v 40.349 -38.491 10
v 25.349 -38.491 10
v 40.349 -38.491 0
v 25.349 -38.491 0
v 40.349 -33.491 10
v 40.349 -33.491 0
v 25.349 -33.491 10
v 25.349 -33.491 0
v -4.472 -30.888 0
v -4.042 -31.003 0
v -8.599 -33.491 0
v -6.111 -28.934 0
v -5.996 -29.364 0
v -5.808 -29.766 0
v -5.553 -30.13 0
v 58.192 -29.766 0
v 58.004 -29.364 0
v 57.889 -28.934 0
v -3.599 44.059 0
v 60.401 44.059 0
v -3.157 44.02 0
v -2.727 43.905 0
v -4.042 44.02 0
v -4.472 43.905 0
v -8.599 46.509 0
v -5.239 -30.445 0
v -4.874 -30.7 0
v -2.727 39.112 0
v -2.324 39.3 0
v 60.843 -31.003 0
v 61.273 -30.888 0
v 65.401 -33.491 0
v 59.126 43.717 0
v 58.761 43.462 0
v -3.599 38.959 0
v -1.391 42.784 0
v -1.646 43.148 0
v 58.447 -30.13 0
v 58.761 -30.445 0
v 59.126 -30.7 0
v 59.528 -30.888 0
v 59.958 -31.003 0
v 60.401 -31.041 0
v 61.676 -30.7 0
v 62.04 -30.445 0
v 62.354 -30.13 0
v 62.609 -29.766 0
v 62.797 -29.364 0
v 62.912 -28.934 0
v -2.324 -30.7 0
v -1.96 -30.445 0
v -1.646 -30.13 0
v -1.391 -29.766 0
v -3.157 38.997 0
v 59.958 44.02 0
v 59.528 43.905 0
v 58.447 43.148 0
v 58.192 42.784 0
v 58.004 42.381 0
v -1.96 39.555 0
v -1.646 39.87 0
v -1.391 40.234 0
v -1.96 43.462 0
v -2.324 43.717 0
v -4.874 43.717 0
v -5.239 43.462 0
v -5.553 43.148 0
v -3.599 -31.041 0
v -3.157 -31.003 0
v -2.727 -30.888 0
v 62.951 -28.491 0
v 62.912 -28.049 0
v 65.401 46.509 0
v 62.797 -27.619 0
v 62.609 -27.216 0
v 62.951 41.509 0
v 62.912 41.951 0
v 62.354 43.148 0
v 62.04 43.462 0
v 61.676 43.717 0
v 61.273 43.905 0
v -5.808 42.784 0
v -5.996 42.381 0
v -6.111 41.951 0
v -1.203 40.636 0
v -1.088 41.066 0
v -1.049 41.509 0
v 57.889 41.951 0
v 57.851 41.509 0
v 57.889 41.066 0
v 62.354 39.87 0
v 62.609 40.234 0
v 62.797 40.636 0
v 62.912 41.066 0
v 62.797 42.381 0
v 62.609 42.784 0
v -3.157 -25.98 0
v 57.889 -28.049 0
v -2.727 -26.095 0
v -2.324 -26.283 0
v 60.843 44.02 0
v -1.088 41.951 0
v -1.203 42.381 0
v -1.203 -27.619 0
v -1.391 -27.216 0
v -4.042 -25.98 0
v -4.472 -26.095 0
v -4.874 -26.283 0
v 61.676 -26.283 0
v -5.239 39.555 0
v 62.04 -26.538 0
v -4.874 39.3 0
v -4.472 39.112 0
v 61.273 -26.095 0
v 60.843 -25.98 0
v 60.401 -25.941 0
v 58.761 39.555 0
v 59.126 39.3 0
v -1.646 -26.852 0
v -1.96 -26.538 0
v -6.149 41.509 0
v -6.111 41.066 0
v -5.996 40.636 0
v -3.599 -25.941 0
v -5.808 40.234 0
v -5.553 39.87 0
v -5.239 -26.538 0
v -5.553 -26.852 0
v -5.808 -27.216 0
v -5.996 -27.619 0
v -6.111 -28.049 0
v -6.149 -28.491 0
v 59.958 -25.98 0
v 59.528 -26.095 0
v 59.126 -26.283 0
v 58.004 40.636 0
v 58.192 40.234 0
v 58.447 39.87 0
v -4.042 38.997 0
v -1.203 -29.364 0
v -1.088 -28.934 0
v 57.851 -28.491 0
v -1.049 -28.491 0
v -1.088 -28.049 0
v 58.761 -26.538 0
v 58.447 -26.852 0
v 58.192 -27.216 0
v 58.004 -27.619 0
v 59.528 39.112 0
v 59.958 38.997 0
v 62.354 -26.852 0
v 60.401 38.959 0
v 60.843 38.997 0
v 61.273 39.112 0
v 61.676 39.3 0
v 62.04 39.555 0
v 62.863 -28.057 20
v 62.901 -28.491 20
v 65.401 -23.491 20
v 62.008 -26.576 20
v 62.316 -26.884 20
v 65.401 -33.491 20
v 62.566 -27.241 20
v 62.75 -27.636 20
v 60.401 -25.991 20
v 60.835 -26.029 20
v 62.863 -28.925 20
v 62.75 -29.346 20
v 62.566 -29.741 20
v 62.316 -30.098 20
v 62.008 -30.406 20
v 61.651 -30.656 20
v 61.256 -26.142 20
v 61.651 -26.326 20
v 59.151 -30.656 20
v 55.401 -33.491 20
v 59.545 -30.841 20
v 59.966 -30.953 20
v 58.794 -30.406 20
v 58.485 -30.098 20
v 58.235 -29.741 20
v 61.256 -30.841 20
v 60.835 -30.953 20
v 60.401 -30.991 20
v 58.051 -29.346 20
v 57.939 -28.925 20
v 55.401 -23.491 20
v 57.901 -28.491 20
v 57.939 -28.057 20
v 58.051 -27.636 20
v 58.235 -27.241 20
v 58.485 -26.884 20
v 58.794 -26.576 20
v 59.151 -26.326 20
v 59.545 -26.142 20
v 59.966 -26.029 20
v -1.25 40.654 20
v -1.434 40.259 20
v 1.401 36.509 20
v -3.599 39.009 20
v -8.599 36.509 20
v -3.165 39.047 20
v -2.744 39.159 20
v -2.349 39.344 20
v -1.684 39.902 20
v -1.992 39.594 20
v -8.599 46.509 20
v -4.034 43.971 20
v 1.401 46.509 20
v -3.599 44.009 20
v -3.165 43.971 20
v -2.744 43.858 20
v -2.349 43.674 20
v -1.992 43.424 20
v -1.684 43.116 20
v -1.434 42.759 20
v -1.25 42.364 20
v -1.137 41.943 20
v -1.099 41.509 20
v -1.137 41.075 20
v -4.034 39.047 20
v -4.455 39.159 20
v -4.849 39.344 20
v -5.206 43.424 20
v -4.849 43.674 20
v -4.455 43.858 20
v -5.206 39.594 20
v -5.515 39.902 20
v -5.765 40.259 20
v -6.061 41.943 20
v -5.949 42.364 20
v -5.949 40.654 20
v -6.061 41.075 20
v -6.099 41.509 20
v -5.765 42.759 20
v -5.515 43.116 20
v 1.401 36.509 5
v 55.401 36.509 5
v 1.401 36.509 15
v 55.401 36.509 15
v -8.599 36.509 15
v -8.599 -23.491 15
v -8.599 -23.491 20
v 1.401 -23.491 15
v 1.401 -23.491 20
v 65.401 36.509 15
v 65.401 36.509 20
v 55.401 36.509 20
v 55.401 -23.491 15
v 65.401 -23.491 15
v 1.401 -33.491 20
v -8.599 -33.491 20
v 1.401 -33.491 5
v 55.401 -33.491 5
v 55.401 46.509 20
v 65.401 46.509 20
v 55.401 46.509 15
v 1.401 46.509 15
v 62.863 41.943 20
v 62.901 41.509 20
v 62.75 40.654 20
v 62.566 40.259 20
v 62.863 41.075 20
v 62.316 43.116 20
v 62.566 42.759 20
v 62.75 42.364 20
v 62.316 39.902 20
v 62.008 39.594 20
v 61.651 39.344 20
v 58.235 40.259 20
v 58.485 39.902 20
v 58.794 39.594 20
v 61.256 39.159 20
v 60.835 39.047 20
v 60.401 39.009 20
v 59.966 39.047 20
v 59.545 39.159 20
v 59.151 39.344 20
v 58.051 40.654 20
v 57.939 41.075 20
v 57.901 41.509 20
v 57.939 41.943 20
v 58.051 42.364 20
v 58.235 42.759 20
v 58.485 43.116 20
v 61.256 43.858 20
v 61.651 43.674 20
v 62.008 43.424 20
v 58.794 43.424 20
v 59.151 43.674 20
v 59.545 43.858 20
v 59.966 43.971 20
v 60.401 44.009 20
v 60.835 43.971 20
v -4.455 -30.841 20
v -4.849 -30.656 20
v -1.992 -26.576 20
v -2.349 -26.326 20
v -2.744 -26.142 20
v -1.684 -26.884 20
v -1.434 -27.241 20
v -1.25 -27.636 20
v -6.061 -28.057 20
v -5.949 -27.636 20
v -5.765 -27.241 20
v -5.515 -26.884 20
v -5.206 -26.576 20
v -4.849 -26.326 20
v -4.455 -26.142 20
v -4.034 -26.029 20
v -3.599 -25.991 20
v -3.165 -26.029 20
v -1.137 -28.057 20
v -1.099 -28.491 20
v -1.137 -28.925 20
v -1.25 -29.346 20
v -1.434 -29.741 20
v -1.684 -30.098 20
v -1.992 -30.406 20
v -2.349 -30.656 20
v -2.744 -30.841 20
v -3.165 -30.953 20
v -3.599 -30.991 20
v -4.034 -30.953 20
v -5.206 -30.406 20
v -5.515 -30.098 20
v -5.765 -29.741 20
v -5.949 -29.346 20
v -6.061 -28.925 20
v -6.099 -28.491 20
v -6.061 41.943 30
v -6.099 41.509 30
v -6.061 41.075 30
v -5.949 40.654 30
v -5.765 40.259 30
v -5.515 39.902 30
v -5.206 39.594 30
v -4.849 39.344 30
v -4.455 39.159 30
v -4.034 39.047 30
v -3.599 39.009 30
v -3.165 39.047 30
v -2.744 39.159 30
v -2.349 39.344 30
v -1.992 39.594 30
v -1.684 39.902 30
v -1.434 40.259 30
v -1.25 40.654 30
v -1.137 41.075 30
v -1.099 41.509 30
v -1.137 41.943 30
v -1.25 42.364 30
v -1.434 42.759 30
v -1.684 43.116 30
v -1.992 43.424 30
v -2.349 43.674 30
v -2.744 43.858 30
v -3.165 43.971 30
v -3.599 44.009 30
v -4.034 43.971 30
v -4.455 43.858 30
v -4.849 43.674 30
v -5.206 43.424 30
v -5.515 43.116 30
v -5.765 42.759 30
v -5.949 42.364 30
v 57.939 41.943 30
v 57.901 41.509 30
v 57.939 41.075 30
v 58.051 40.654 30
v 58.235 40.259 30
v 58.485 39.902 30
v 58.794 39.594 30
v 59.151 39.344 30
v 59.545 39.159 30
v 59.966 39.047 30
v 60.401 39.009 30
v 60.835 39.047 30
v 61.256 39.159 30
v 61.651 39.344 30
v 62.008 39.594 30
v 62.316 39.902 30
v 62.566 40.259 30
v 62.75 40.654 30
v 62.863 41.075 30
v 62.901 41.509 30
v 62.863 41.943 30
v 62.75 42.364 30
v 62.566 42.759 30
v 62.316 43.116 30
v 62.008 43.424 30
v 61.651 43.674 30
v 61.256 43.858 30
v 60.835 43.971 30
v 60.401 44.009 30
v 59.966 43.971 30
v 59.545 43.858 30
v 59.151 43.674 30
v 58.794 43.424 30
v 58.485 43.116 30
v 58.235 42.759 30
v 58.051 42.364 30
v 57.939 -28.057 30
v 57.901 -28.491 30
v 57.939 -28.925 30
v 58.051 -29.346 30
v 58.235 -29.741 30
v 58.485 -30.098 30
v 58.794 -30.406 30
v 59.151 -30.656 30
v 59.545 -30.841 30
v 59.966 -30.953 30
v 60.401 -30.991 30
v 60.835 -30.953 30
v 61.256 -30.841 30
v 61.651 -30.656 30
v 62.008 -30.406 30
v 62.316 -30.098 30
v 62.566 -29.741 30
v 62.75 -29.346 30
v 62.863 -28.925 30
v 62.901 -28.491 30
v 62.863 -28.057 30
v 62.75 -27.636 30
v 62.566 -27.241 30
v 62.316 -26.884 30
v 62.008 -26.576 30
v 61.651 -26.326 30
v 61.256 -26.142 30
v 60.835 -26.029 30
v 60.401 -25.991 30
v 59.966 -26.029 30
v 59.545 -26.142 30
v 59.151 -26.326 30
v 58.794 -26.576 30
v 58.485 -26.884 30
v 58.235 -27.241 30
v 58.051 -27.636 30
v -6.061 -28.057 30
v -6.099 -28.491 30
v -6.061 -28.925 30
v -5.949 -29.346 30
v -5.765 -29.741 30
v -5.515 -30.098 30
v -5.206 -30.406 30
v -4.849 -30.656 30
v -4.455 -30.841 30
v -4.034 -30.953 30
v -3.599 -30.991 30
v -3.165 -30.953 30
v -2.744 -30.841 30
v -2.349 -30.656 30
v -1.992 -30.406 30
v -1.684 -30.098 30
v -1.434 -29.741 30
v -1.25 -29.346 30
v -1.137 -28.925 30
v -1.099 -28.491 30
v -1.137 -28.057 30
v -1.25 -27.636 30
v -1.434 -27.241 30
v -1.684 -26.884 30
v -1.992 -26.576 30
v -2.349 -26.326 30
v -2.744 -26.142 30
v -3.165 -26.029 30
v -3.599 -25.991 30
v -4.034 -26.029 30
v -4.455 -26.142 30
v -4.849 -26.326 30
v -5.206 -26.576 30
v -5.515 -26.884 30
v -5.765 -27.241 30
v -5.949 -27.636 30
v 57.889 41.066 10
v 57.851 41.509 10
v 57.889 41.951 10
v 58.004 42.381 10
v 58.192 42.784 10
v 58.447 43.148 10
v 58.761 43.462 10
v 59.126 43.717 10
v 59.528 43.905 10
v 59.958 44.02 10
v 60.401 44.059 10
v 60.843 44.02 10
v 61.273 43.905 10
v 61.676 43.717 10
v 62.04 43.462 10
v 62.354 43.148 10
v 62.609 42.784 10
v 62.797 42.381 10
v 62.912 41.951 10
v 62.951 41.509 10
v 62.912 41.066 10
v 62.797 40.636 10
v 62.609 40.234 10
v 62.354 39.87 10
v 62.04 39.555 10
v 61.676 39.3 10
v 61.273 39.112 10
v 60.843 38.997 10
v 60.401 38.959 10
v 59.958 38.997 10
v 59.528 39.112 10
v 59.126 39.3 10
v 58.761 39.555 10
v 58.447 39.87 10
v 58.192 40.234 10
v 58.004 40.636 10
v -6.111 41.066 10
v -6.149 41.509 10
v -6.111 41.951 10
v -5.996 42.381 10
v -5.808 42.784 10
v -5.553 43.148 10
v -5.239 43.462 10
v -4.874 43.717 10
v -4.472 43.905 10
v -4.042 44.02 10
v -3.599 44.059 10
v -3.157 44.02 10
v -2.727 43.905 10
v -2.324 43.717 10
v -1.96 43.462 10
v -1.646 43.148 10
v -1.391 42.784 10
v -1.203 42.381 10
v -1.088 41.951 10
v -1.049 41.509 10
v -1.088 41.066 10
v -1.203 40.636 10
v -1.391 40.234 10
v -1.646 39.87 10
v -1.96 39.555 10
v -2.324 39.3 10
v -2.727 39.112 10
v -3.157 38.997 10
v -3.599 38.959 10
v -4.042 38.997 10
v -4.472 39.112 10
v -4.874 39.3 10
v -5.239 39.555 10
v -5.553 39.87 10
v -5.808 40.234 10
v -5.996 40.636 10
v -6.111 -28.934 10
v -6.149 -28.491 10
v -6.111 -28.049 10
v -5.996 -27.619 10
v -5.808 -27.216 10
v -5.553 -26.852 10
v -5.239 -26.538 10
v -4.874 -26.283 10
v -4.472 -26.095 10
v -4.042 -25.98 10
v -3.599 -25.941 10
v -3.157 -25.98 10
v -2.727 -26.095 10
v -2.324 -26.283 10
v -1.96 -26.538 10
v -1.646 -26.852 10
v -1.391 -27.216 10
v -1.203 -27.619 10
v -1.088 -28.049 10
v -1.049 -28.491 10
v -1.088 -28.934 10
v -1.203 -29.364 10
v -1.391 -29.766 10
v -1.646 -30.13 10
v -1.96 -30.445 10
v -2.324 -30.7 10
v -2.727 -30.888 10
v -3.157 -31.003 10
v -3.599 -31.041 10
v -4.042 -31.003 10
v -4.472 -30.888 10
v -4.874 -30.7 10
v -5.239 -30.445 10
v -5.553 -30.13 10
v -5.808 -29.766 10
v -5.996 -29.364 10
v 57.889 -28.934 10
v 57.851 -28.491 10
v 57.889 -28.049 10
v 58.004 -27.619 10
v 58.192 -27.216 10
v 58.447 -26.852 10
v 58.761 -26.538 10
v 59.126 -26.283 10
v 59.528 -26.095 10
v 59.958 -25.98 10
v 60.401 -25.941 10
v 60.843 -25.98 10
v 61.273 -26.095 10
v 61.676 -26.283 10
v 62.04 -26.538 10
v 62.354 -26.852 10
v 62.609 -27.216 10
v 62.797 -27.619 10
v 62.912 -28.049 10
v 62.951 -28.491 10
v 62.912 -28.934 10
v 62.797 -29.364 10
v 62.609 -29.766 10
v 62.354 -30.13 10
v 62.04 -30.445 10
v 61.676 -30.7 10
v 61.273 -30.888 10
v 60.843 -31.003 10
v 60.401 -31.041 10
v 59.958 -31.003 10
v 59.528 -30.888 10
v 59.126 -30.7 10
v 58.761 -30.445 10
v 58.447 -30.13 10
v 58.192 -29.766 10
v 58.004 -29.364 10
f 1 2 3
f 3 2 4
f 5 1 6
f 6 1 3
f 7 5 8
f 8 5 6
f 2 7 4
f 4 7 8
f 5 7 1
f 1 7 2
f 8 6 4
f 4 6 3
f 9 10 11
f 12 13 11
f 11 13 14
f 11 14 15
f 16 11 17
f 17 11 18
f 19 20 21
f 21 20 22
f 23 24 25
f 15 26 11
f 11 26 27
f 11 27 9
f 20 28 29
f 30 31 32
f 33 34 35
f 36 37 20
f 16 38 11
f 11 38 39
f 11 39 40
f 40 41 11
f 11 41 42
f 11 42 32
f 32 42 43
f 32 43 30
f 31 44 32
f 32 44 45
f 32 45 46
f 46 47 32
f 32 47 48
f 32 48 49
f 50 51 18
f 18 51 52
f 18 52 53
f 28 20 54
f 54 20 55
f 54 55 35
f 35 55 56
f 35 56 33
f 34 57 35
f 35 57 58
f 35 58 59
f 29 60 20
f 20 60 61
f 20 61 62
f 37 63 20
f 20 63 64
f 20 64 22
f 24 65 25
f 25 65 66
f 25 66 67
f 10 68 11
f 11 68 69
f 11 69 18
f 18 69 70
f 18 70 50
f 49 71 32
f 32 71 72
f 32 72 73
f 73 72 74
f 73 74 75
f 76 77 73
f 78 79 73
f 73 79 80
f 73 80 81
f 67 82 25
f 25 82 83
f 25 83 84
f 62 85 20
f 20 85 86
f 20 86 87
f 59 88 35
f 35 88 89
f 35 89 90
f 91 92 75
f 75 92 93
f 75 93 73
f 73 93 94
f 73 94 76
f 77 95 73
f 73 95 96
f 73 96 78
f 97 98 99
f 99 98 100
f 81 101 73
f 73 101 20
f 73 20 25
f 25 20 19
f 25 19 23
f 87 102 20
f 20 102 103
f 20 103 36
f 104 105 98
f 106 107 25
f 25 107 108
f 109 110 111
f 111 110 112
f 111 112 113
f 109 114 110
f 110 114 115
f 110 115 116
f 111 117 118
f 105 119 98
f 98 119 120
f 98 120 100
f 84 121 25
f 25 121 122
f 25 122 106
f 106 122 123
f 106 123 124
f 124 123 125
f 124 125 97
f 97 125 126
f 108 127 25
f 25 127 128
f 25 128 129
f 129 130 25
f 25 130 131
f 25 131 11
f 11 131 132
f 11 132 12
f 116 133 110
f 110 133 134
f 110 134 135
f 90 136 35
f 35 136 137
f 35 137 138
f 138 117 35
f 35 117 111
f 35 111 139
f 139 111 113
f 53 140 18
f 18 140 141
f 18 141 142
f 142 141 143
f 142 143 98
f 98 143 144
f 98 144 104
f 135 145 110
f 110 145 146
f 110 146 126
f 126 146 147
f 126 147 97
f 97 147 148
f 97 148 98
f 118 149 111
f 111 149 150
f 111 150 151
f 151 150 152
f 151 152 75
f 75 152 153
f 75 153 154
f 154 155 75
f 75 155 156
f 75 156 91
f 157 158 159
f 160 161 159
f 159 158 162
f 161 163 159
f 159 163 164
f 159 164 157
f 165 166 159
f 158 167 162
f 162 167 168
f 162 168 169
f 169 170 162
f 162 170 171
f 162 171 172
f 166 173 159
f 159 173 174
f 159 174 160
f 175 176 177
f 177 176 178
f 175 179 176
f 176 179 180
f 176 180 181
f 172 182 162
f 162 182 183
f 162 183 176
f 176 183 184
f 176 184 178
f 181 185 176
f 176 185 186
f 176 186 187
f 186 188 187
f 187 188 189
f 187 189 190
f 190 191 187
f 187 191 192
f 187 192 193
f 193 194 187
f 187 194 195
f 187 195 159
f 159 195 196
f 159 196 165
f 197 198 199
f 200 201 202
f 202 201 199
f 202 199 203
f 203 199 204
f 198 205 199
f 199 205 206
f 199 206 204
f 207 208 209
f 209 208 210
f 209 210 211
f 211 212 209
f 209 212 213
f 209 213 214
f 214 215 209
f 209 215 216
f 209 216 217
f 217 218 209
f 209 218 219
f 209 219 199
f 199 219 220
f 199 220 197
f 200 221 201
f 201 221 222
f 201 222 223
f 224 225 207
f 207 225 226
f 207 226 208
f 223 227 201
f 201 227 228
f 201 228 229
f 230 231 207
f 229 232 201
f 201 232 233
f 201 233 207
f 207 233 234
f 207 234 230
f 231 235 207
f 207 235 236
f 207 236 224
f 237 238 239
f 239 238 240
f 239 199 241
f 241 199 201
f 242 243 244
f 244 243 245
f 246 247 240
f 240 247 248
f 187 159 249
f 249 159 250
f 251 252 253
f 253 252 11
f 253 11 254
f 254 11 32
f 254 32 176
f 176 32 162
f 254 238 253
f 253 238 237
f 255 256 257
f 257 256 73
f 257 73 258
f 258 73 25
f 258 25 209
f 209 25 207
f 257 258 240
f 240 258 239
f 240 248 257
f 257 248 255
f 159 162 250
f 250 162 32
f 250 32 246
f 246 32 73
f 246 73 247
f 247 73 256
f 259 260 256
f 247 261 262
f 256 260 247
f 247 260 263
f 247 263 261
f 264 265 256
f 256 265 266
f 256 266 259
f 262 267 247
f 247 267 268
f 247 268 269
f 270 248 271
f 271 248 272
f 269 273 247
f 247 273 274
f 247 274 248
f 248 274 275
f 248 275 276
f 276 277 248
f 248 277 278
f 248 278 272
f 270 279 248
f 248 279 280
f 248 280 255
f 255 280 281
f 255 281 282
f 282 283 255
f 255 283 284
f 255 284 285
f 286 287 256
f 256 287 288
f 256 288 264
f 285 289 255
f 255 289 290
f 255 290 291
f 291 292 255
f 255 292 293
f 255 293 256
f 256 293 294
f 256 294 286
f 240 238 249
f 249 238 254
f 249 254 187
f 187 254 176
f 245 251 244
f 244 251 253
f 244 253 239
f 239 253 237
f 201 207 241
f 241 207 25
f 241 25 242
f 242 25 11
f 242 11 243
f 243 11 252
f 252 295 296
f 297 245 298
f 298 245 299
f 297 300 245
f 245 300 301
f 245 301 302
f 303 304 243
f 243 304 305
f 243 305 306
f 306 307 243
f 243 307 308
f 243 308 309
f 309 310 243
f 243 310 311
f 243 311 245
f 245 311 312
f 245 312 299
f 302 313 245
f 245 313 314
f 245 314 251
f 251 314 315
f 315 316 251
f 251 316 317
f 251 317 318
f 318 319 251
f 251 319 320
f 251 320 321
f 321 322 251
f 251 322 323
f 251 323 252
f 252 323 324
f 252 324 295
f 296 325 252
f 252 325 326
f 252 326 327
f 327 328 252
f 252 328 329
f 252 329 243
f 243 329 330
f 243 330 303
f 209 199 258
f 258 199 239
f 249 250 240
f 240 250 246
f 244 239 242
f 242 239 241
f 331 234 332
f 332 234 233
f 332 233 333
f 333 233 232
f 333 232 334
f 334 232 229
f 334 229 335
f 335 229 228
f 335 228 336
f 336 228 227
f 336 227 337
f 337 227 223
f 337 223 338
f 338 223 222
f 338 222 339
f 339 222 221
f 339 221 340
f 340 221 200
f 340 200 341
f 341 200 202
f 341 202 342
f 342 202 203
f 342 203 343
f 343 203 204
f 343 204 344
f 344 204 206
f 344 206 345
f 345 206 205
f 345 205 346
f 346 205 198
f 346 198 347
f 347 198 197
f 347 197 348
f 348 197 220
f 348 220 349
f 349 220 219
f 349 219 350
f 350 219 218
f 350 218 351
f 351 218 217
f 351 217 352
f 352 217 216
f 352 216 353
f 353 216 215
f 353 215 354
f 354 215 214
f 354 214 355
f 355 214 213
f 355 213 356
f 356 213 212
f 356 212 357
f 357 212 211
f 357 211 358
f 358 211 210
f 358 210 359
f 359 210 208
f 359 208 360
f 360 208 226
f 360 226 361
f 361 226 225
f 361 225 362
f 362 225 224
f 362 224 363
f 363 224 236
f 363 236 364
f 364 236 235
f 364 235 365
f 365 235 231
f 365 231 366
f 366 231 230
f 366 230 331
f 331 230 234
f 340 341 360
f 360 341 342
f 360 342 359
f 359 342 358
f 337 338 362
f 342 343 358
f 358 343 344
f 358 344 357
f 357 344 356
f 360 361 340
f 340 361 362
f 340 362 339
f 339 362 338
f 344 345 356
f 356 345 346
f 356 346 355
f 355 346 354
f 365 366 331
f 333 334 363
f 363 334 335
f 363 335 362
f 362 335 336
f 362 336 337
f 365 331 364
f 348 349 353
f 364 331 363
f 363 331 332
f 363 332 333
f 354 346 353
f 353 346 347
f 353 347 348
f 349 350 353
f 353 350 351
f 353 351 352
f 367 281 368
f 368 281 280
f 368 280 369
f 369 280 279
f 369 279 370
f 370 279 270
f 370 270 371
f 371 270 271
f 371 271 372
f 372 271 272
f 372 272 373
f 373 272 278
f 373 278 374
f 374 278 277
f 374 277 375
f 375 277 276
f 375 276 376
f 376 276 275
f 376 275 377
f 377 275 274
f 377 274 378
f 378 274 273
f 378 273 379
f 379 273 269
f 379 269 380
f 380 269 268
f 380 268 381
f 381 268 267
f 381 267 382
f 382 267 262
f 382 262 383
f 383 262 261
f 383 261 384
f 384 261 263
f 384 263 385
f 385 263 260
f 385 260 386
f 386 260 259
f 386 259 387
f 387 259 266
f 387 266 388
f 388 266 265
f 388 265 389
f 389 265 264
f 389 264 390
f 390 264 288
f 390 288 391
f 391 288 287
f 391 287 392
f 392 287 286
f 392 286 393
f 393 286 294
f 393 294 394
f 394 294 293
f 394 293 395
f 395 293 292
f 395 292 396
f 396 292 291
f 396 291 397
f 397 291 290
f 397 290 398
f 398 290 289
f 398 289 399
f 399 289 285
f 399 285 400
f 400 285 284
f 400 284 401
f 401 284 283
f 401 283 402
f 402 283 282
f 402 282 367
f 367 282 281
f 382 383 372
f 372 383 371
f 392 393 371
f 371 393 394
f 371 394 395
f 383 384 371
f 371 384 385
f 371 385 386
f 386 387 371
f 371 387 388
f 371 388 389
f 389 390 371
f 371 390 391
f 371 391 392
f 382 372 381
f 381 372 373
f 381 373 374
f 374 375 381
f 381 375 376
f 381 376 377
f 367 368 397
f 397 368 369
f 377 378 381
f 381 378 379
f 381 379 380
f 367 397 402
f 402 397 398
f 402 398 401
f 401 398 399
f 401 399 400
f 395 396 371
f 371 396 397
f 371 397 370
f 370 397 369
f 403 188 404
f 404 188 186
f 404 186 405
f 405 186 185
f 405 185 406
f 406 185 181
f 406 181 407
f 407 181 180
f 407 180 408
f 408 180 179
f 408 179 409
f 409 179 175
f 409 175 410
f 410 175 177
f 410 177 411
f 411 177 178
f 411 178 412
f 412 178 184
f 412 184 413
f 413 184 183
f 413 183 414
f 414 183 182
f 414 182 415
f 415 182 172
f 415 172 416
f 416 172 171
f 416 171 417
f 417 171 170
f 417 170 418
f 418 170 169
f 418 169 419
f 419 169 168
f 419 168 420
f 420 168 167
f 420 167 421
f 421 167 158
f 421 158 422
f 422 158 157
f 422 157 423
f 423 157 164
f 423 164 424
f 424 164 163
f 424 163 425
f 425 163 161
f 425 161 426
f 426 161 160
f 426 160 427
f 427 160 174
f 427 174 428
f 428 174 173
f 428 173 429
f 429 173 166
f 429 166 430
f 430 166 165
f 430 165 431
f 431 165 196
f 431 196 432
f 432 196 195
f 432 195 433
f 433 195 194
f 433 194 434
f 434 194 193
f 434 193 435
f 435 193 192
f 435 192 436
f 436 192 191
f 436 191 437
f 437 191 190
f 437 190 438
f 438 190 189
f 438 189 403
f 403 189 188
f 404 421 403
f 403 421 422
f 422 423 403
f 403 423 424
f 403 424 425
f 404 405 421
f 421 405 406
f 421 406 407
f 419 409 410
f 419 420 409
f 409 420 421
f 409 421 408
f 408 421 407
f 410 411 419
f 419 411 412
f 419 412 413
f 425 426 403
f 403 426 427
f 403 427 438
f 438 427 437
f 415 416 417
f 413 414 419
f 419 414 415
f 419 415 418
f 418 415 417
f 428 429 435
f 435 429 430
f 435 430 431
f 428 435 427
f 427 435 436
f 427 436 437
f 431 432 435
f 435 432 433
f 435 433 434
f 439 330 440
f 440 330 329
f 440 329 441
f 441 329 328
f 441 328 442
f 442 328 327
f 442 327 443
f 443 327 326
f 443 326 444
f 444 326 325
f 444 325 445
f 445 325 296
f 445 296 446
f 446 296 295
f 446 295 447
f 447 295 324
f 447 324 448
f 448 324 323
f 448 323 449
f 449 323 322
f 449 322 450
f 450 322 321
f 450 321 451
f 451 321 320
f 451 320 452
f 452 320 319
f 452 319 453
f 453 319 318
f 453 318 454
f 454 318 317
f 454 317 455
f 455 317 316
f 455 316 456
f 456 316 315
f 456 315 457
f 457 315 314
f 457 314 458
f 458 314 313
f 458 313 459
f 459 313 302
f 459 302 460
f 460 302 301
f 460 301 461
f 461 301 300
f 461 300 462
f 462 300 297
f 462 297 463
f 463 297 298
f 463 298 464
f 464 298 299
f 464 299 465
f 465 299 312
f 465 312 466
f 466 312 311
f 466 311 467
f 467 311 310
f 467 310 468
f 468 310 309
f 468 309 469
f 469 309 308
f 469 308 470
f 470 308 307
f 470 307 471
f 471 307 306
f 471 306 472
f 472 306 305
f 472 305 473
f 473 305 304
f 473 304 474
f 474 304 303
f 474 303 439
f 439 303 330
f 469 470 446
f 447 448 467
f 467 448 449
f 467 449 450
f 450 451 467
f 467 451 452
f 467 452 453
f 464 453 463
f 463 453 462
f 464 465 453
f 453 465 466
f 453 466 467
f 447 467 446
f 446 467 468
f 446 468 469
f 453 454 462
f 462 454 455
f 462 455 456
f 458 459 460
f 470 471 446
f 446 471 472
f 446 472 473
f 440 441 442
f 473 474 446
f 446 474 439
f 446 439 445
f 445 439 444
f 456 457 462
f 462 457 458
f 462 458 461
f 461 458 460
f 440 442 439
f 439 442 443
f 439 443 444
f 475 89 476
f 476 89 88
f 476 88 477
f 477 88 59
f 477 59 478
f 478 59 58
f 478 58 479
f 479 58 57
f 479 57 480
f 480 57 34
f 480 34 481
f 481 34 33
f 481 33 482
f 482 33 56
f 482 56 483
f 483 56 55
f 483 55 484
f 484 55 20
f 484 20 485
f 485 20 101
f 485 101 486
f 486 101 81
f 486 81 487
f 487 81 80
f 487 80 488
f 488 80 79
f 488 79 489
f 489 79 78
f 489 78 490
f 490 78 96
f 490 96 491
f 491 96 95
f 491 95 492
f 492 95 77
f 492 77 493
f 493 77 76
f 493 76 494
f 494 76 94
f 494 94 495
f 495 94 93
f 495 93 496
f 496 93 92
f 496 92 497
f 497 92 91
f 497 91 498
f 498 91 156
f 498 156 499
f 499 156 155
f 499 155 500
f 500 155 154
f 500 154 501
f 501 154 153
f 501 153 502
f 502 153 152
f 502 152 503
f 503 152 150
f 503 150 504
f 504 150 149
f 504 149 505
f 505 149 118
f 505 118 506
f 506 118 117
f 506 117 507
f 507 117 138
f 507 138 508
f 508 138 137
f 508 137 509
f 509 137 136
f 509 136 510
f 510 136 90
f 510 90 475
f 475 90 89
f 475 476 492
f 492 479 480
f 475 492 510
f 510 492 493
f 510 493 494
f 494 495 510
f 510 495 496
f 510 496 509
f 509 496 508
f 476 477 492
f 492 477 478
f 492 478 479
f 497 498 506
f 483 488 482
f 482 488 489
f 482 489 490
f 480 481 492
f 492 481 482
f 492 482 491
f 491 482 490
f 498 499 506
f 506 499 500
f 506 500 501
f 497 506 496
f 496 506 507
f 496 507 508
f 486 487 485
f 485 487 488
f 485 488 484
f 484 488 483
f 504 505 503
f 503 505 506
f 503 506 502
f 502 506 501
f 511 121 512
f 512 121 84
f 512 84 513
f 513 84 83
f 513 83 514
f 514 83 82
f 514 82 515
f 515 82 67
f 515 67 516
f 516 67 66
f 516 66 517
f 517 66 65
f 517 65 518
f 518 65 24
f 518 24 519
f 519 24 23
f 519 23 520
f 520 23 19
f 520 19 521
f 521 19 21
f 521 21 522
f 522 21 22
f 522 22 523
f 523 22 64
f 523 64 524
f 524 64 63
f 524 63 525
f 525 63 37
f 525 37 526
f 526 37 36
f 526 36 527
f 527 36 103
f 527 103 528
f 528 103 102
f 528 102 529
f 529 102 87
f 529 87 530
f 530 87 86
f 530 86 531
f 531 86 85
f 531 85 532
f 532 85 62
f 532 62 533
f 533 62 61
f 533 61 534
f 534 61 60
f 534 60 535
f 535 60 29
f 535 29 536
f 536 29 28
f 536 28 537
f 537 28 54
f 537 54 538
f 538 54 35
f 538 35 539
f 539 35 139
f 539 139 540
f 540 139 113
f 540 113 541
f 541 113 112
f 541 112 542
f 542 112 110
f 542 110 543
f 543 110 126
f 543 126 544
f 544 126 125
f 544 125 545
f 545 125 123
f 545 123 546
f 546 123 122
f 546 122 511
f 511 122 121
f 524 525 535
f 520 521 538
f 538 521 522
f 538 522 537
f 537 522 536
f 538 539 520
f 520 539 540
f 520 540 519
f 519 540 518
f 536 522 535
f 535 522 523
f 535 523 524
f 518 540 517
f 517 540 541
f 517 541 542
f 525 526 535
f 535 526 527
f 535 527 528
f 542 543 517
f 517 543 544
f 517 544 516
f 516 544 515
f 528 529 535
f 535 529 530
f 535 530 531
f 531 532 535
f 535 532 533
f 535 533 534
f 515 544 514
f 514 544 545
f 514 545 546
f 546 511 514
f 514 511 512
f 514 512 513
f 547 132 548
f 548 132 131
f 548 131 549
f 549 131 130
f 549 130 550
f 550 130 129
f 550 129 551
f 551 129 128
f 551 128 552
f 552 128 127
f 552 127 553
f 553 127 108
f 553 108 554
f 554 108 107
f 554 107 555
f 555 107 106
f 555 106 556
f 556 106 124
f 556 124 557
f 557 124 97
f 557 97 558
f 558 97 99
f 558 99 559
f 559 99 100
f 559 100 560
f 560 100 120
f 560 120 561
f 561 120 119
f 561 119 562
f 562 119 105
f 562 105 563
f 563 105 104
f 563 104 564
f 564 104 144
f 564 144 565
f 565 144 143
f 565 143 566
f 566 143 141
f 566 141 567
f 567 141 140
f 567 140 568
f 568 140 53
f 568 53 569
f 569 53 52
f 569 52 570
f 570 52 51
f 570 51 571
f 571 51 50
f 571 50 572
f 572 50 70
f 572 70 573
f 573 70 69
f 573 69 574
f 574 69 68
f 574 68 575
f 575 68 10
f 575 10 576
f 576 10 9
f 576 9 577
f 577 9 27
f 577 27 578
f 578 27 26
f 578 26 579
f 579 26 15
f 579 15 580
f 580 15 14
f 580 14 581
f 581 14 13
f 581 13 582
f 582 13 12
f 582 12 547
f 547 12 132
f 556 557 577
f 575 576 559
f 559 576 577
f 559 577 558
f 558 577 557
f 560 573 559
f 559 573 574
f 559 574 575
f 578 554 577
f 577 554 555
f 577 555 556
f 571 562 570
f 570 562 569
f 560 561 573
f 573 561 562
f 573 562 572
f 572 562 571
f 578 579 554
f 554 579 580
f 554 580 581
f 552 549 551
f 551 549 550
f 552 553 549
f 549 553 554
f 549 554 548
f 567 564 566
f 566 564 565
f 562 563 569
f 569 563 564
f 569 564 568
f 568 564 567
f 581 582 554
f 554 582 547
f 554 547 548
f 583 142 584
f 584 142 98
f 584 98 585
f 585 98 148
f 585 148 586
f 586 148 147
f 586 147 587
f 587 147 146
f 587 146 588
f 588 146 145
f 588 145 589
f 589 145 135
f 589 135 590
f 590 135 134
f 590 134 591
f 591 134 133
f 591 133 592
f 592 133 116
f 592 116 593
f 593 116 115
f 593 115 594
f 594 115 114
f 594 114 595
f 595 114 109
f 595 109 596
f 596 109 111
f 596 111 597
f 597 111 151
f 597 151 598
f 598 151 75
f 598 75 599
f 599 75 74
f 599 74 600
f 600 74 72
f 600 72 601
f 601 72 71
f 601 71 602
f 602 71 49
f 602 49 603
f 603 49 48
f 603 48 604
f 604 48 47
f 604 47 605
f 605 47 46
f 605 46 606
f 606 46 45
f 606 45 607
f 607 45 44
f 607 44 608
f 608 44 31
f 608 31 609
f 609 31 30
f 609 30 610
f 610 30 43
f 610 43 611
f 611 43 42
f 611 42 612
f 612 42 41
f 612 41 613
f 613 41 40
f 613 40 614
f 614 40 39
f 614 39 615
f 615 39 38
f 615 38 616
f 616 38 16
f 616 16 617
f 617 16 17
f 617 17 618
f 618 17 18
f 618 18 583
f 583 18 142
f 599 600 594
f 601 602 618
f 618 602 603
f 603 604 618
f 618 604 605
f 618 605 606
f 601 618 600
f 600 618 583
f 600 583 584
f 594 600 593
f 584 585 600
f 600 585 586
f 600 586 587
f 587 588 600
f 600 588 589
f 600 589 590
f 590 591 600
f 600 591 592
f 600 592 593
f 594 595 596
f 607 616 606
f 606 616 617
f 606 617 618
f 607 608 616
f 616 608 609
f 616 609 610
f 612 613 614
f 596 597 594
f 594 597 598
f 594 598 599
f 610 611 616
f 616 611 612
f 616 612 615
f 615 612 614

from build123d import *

# Parameters (mm, degrees)
CROQUIS1_W               = 54
CROQUIS1_H               = 70
SALIENTE_EXTRUIR1_DEPTH  = 5
CROQUIS4_W               = 54
CROQUIS4_H               = 10
SALIENTE_EXTRUIR5_DEPTH  = 15
CROQUIS5_W               = 10
CROQUIS5_H               = 10
SALIENTE_EXTRUIR6_DEPTH  = 20
CROQUIS6_W               = 15
CROQUIS6_H               = 5
SALIENTE_EXTRUIR7_DEPTH  = 10
CROQUIS8_W               = 10
CROQUIS8_H               = 60
SALIENTE_EXTRUIR9_DEPTH  = 15
CROQUIS9_R               = 2.5
SALIENTE_EXTRUIR10_DEPTH = 10
CROQUIS11_R              = 2.55
CORTAR_EXTRUIR1_DEPTH    = 10


with BuildPart() as part:
    # Croquis1 → Saliente-Extruir1 (new body)
    with BuildSketch(Plane.XY):
        with Locations((28.400543811, 1.50863747)):
            Rectangle(CROQUIS1_W, CROQUIS1_H)
    extrude(amount=SALIENTE_EXTRUIR1_DEPTH)

    # Croquis4 → Saliente-Extruir5 (add)
    with BuildSketch(Plane(origin=(0, 0, 0), x_dir=(-1, 0, 0), z_dir=(0, 0, -1))):
        with Locations((-28.400543811, 41.50863747)):
            Rectangle(CROQUIS4_W, CROQUIS4_H)
    extrude(amount=-SALIENTE_EXTRUIR5_DEPTH)

    # Croquis5 → Saliente-Extruir6 (add)
    with BuildSketch(Plane(origin=(0, 0, 0), x_dir=(-1, 0, 0), z_dir=(0, 0, -1))):
        with Locations((-60.400543811, 41.50863747)):
            Rectangle(CROQUIS5_W, CROQUIS5_H)
        with Locations((-60.400543811, -28.49136253)):
            Rectangle(CROQUIS5_W, CROQUIS5_H)
        with Locations((3.599456189, -28.49136253)):
            Rectangle(CROQUIS5_W, CROQUIS5_H)
        with Locations((3.599456189, 41.50863747)):
            Rectangle(CROQUIS5_W, CROQUIS5_H)
    extrude(amount=-SALIENTE_EXTRUIR6_DEPTH)

    # Croquis8 → Saliente-Extruir9 (add)
    with BuildSketch(Plane(origin=(0, 0, 0), x_dir=(-1, 0, 0), z_dir=(0, 0, -1))):
        with Locations((-60.400543811, 6.50863747)):
            Rectangle(CROQUIS8_W, CROQUIS8_H)
        with Locations((3.599456189, 6.50863747)):
            Rectangle(CROQUIS8_W, CROQUIS8_H)
    extrude(amount=-SALIENTE_EXTRUIR9_DEPTH)

    # Croquis9 → Saliente-Extruir10 (add)
    with BuildSketch(Plane.XY.offset(20)):
        with BuildLine():
            ThreePointArc((-1.099456189, 41.50863747), (-3.599456189, 44.00863747), (-6.099456189, 41.50863747))
            Line((-6.099456189, 41.50863747), (-1.099456189, 41.50863747))
        make_face()
        with BuildLine():
            Line((-1.099456189, 41.50863747), (-6.099456189, 41.50863747))
            ThreePointArc((-6.099456189, 41.50863747), (-3.599456189, 39.00863747), (-1.099456189, 41.50863747))
        make_face()
        with Locations((60.400543811, 41.50863747)):
            Circle(CROQUIS9_R)
        with Locations((60.400543811, -28.49136253)):
            Circle(CROQUIS9_R)
        with Locations((-3.599456189, -28.49136253)):
            Circle(CROQUIS9_R)
    extrude(amount=SALIENTE_EXTRUIR10_DEPTH)

    # Croquis11 → Cortar-Extruir1 (cut)
    with BuildSketch(Plane(origin=(0, 0, 0), x_dir=(-1, 0, 0), z_dir=(0, 0, -1))):
        with BuildLine():
            ThreePointArc((-57.850543811, 41.50863747), (-60.400543811, 44.05863747), (-62.950543811, 41.50863747))
            Line((-62.950543811, 41.50863747), (-60.400543811, 41.50863747))
            Line((-60.400543811, 41.50863747), (-57.850543811, 41.50863747))
        make_face()
        with BuildLine():
            Line((-60.400543811, 41.50863747), (-62.950543811, 41.50863747))
            ThreePointArc((-62.950543811, 41.50863747), (-60.400543811, 38.95863747), (-57.850543811, 41.50863747))
            Line((-57.850543811, 41.50863747), (-60.400543811, 41.50863747))
        make_face()
        with BuildLine():
            ThreePointArc((6.149456189, 41.50863747), (3.599456189, 44.05863747), (1.049456189, 41.50863747))
            Line((1.049456189, 41.50863747), (6.149456189, 41.50863747))
        make_face()
        with BuildLine():
            Line((6.149456189, 41.50863747), (1.049456189, 41.50863747))
            ThreePointArc((1.049456189, 41.50863747), (3.599456189, 38.95863747), (6.149456189, 41.50863747))
        make_face()
        with Locations((3.599456189, -28.49136253)):
            Circle(CROQUIS11_R)
        with Locations((-60.400543811, -28.49136253)):
            Circle(CROQUIS11_R)
    extrude(amount=-CORTAR_EXTRUIR1_DEPTH, mode=Mode.SUBTRACT)


with BuildPart() as body_2:
    # Croquis6 → Saliente-Extruir7 (new body)
    with BuildSketch(Plane(origin=(0, 0, 0), x_dir=(-1, 0, 0), z_dir=(0, 0, -1))):
        with Locations((-32.848967284, -35.99136253)):
            Rectangle(CROQUIS6_W, CROQUIS6_H)
    extrude(amount=-SALIENTE_EXTRUIR7_DEPTH)


solid = Compound([part.part, body_2.part])
